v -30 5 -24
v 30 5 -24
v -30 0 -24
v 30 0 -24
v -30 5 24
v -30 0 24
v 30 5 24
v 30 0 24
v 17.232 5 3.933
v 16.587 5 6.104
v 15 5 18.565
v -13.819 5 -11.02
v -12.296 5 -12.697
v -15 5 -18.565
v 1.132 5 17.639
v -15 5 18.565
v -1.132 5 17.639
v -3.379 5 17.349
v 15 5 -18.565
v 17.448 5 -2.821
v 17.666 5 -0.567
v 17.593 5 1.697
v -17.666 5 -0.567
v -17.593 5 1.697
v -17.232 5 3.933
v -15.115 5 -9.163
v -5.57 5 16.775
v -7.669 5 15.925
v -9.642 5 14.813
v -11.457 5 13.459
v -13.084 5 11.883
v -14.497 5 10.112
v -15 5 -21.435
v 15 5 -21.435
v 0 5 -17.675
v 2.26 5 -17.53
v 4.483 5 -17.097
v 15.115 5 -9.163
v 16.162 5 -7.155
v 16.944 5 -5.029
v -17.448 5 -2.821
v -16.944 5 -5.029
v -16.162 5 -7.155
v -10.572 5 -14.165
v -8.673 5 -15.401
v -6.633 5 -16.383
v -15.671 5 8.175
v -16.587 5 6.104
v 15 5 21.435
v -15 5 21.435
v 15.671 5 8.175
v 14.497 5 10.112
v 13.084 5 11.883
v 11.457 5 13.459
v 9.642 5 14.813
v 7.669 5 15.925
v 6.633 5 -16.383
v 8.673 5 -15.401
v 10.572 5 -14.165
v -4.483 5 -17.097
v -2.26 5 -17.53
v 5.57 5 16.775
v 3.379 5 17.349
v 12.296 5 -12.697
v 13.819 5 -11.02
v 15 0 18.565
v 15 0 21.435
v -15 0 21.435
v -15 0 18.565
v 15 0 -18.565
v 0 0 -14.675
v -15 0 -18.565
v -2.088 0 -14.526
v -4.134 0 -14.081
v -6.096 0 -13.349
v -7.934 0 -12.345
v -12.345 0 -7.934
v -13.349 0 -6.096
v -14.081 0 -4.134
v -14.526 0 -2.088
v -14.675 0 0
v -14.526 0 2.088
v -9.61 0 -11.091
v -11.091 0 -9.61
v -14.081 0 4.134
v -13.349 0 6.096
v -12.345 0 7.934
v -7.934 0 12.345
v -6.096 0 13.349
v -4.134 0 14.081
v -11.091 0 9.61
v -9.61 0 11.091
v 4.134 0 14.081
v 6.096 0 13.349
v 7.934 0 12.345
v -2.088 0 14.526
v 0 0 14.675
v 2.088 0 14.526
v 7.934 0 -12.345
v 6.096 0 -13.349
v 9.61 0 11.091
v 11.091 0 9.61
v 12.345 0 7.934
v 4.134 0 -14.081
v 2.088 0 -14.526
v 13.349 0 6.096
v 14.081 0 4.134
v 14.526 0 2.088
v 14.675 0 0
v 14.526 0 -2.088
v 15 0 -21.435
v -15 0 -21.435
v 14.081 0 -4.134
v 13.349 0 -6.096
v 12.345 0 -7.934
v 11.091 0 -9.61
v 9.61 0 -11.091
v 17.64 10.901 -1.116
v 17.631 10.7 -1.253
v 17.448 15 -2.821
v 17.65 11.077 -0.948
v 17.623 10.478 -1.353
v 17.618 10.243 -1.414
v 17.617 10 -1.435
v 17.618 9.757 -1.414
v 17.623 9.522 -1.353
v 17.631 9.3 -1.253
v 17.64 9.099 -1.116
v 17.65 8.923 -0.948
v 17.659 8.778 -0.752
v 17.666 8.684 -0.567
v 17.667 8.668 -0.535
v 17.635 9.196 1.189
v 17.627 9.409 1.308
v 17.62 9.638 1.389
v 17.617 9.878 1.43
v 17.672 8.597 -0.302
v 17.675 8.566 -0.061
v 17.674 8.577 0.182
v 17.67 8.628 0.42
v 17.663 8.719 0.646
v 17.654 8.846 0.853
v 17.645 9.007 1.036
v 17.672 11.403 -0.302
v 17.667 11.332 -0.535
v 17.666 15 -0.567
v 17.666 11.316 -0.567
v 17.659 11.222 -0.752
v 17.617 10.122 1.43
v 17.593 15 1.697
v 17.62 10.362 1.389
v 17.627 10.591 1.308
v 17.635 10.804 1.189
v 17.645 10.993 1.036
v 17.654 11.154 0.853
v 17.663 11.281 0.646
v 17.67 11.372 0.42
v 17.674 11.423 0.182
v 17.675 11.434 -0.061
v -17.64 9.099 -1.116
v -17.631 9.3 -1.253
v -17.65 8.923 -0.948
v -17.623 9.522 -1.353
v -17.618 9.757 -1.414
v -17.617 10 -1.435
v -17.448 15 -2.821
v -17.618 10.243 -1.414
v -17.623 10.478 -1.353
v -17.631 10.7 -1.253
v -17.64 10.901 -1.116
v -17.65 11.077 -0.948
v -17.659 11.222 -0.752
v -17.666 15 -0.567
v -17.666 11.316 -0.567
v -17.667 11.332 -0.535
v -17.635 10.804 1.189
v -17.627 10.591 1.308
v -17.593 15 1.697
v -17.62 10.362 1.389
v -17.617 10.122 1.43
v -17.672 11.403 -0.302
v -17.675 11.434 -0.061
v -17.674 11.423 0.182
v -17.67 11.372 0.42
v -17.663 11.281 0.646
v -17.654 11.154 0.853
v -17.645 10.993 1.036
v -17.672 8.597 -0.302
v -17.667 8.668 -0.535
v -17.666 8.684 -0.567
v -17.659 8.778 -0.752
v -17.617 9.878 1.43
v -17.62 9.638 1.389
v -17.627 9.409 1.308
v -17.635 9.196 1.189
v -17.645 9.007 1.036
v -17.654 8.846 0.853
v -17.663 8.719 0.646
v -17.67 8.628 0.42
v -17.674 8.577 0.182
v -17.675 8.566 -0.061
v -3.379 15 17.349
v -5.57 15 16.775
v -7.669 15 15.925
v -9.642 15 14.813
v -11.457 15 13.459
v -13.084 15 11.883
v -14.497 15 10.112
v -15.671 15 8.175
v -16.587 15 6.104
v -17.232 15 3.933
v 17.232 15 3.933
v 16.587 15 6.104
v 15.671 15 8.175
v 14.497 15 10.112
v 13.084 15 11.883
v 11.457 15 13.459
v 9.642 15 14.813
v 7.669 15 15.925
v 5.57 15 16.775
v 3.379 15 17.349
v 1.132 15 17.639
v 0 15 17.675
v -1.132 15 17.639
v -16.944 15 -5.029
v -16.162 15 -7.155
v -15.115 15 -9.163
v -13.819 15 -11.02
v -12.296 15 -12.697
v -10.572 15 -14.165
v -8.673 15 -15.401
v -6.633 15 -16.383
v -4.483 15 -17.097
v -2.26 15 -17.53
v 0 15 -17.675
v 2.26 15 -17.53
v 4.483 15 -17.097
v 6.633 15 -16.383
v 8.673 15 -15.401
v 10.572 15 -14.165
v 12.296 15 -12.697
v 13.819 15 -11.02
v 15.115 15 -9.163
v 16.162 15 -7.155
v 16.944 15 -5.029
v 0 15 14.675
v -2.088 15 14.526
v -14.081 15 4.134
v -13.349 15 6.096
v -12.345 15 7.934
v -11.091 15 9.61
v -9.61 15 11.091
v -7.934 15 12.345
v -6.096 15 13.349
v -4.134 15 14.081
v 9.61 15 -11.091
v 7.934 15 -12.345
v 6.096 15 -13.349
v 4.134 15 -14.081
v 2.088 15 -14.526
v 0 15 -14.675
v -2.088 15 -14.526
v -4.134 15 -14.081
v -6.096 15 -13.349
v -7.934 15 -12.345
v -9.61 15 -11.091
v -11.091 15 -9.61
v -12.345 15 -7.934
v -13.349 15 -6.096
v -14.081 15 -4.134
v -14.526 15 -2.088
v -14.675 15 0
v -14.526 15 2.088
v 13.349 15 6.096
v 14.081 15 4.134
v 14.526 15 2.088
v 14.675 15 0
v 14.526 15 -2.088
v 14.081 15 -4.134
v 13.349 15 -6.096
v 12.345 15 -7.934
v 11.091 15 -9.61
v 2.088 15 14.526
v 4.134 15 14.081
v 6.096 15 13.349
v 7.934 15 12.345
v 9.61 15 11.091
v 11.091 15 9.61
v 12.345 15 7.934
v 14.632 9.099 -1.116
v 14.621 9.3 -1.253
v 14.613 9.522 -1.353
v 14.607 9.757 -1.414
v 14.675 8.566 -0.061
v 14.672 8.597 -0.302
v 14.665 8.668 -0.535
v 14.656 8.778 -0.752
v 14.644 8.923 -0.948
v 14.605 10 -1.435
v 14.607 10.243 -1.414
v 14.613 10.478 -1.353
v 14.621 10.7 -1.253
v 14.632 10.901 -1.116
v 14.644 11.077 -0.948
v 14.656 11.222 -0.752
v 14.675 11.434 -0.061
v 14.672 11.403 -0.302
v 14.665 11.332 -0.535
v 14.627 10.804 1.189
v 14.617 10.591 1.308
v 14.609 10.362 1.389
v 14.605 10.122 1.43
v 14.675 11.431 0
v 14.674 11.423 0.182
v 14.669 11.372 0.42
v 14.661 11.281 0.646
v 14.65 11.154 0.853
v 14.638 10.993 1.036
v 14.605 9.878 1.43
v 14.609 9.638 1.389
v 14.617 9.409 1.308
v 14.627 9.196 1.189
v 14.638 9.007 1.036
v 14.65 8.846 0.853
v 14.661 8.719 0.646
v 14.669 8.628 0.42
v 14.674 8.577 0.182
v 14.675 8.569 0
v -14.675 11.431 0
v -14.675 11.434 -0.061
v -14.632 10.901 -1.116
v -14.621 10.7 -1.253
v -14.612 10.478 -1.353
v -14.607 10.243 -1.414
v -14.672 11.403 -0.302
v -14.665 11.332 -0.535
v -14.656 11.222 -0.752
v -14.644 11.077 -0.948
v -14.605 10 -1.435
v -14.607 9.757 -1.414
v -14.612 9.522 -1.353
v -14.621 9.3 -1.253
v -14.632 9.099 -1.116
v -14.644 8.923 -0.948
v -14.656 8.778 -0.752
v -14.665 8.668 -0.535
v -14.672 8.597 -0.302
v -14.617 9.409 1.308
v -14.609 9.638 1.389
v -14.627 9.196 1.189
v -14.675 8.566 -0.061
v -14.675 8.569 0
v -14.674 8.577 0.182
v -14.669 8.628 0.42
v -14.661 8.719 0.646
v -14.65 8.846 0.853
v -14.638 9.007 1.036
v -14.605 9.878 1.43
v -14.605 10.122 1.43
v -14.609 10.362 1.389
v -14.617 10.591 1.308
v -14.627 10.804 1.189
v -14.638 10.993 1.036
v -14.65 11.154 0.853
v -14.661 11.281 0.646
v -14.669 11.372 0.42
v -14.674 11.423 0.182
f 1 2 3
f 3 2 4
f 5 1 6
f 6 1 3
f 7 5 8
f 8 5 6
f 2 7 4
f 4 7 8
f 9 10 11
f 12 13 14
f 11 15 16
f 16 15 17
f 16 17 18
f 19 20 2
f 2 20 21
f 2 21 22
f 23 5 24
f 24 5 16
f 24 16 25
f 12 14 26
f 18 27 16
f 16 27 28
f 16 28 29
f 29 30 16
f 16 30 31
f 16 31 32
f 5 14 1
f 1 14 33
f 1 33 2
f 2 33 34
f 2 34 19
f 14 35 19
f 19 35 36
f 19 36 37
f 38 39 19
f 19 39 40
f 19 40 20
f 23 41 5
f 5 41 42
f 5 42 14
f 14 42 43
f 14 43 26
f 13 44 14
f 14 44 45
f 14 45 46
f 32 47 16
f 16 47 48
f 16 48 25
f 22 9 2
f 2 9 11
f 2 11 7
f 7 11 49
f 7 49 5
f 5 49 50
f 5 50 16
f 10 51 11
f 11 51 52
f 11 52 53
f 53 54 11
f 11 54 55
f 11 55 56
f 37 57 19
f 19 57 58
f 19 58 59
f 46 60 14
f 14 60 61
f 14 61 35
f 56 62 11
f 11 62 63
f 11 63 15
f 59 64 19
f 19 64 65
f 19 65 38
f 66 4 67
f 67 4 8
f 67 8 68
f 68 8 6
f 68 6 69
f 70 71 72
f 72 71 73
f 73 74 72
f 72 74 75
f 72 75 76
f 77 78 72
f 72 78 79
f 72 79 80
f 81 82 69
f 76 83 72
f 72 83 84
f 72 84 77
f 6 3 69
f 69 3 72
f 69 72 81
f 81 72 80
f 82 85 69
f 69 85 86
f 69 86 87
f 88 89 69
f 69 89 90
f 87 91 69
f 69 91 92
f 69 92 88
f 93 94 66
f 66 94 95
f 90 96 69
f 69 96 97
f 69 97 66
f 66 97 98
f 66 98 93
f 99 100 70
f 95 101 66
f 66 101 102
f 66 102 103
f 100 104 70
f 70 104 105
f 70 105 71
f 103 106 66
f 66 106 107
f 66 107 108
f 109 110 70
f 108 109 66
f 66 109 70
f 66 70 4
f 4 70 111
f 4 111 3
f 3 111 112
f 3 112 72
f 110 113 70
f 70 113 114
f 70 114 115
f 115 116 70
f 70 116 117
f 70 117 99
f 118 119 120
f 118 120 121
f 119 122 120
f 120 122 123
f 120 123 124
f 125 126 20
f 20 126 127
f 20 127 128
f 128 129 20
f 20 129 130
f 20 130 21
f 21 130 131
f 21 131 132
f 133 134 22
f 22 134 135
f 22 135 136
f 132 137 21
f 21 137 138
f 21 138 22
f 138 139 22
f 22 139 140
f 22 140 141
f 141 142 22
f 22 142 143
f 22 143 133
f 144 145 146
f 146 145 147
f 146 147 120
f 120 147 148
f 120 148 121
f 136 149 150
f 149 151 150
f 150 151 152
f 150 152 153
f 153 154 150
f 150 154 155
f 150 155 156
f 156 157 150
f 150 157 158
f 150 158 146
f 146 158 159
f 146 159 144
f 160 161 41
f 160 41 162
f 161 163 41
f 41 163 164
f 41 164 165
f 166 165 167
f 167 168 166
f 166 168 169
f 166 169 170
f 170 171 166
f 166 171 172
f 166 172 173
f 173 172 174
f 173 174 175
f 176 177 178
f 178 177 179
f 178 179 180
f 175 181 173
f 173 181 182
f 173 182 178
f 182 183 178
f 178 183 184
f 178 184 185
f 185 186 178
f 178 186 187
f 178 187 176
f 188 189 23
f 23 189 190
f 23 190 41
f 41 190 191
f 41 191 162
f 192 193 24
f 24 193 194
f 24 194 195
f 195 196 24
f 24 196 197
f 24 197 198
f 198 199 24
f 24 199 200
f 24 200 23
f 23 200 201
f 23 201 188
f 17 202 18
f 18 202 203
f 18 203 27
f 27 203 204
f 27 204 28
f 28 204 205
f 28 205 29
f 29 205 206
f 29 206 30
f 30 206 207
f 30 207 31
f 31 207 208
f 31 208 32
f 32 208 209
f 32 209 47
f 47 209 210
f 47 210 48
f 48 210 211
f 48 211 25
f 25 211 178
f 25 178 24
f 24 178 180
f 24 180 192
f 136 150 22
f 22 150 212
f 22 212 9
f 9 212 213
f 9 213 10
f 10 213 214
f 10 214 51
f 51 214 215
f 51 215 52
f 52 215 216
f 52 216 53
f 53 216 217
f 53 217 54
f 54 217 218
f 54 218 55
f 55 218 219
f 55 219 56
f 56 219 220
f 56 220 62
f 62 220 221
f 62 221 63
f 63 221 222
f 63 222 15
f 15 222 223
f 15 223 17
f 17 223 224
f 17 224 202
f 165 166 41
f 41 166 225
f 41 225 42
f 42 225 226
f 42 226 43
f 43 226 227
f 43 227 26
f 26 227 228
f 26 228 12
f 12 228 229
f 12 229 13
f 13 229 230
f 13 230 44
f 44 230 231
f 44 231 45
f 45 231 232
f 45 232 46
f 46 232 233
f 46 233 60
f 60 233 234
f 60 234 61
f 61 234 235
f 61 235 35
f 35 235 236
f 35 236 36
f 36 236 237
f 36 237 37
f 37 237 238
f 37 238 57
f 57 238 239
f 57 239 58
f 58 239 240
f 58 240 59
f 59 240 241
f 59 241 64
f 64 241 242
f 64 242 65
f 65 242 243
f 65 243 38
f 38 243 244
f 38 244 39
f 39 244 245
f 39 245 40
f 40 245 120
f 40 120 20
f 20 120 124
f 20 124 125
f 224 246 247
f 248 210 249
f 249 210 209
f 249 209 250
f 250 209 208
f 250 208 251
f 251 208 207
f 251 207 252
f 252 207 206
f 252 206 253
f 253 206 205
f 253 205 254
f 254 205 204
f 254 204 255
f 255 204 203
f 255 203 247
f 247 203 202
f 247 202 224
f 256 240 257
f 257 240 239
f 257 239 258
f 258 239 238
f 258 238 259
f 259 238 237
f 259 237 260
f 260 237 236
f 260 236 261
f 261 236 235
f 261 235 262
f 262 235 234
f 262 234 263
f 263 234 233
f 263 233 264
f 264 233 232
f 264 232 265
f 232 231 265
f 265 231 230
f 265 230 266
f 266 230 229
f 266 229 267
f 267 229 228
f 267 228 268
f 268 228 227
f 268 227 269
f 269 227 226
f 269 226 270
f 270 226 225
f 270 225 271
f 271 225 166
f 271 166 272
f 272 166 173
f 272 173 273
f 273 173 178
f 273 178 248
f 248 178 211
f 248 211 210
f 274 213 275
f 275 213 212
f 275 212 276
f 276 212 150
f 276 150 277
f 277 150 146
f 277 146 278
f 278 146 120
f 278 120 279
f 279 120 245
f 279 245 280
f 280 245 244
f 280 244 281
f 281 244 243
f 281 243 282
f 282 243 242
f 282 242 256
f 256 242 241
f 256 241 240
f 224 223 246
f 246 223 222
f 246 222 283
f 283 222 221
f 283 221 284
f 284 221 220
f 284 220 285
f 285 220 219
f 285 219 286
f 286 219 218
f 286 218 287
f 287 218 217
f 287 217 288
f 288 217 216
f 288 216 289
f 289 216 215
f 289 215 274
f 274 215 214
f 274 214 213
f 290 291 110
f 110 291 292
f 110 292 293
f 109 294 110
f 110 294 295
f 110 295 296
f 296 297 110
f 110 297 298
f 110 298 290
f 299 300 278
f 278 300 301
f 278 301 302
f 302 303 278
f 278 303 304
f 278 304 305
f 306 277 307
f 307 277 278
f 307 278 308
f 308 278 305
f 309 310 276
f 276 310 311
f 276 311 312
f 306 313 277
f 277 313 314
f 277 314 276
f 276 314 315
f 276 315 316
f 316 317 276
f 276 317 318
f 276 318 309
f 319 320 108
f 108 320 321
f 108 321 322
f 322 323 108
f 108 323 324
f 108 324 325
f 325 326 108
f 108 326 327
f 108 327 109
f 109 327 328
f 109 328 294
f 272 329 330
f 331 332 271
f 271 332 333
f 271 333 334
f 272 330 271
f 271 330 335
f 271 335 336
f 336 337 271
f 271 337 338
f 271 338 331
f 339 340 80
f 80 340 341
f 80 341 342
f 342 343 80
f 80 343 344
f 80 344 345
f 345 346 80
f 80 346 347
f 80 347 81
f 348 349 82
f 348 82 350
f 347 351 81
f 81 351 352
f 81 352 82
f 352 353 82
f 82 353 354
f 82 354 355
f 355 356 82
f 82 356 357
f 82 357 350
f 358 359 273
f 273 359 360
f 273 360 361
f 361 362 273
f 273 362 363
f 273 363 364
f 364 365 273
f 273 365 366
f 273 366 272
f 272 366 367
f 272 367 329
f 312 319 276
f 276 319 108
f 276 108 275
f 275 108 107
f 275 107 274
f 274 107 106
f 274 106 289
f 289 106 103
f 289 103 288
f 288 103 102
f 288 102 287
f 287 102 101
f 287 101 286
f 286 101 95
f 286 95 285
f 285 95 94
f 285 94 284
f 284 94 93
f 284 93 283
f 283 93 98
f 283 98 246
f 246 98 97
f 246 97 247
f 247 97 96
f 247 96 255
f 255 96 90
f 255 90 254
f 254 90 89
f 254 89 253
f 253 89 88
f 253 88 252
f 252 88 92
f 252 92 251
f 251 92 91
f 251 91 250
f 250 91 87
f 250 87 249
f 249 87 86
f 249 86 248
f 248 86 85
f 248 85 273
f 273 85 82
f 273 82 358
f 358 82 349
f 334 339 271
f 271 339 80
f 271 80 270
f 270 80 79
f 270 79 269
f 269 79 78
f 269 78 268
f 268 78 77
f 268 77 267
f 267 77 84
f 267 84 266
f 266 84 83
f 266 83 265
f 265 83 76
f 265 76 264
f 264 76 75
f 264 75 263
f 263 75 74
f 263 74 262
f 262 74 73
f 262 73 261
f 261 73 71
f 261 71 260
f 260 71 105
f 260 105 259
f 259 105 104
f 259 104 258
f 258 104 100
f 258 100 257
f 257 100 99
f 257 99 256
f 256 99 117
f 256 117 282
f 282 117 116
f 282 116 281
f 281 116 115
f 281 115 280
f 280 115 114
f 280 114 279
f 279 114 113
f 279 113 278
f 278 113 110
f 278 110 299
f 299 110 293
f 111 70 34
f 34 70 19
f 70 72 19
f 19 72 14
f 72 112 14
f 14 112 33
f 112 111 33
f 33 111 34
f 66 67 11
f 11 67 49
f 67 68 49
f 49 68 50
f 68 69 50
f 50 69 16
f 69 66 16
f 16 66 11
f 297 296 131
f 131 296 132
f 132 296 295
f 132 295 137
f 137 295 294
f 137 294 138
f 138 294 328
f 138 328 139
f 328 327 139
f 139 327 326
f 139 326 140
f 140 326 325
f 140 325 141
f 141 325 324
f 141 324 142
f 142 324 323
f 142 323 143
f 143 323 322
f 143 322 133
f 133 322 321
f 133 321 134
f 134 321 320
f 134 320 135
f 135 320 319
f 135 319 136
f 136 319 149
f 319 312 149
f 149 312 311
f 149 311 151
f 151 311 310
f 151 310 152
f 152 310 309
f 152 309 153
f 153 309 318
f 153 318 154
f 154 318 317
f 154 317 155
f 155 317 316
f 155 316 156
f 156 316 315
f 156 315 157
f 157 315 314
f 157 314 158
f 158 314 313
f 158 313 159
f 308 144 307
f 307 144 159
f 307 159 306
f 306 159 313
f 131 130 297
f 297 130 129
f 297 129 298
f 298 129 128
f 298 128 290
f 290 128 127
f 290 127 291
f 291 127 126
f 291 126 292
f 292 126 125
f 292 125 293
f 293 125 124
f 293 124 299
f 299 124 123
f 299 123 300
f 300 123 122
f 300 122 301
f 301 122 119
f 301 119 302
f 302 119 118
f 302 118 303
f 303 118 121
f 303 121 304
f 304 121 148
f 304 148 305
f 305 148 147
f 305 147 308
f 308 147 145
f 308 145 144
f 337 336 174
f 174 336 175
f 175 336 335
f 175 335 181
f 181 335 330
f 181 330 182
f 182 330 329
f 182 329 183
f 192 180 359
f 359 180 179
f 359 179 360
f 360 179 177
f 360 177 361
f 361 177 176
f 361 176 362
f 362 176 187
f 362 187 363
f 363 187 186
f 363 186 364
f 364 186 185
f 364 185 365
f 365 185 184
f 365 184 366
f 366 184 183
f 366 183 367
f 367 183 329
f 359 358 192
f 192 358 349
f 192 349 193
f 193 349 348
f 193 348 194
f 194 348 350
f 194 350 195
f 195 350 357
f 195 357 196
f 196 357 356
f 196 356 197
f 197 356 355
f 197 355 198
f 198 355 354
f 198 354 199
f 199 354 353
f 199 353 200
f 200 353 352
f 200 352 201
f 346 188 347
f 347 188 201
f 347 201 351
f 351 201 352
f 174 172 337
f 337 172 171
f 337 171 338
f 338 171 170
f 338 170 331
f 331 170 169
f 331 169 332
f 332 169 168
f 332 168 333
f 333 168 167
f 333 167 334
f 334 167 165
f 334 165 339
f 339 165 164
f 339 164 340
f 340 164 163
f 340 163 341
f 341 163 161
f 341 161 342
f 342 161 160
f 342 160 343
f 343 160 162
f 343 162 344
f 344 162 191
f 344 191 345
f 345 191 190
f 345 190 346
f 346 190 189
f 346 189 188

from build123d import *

# Parameters (mm, degrees)
CROQUIS1_W                 = 60
CROQUIS1_H                 = 48
SALIENTE_EXTRUIR1_DEPTH    = 5
CROQUIS2_R                 = 17.675
SALIENTE_EXTRUIR2_DEPTH    = 10
CORTAR_EXTRUIR1_REACH      = 17
CROQUIS3_R                 = 14.675
CROQUIS5_W                 = 30
CROQUIS5_H                 = 2.87
CORTAR_EXTRUIR2_DEPTH      = 6
CROQUIS6_R                 = 1.435
CORTAR_EXTRUIR3_DEPTH      = 31
CORTAR_EXTRUIR3_DEPTH_BACK = 31


with BuildPart() as part:
    # Croquis1 → Saliente-Extruir1 (new body)
    with BuildSketch(Plane(origin=(0, 0, 0), x_dir=(1, 0, 0), z_dir=(0, 1, 0))):
        Rectangle(CROQUIS1_W, CROQUIS1_H)
    extrude(amount=SALIENTE_EXTRUIR1_DEPTH)

    # Croquis2 → Saliente-Extruir2 (add)
    with BuildSketch(Plane(origin=(0, 5, 0), x_dir=(1, 0, 0), z_dir=(0, 1, 0))):
        Circle(CROQUIS2_R)
    extrude(amount=SALIENTE_EXTRUIR2_DEPTH)

    # Croquis3 → Cortar-Extruir1 (cut, up to next)
    with BuildSketch(Plane.XZ, mode=Mode.PRIVATE) as cortar_extruir1_sk1:
        Circle(CROQUIS3_R)
    cortar_extruir1_tool1 = extrude(cortar_extruir1_sk1.sketch, amount=-CORTAR_EXTRUIR1_REACH, mode=Mode.PRIVATE) & part.part
    add(cortar_extruir1_tool1.solids().sort_by_distance((0, 0, 0))[0], mode=Mode.SUBTRACT)

    # Croquis5 → Cortar-Extruir2 (cut, through all)
    with BuildSketch(Plane(origin=(0, 5, 0), x_dir=(1, 0, 0), z_dir=(0, 1, 0))):
        with Locations((0, 20)):
            Rectangle(CROQUIS5_W, CROQUIS5_H)
        with Locations((0, -20)):
            Rectangle(CROQUIS5_W, CROQUIS5_H)
    extrude(amount=-CORTAR_EXTRUIR2_DEPTH, mode=Mode.SUBTRACT)

    # Croquis6 → Cortar-Extruir3 (cut, two sides)
    with BuildSketch(Plane(origin=(0, 0, 0), x_dir=(0, 0, -1), z_dir=(1, 0, 0))) as cortar_extruir3_sk:
        with Locations((0, 10)):
            Circle(CROQUIS6_R)
    extrude(amount=CORTAR_EXTRUIR3_DEPTH, mode=Mode.SUBTRACT)
    extrude(cortar_extruir3_sk.sketch, amount=-CORTAR_EXTRUIR3_DEPTH_BACK, mode=Mode.SUBTRACT)


solid = part.part
